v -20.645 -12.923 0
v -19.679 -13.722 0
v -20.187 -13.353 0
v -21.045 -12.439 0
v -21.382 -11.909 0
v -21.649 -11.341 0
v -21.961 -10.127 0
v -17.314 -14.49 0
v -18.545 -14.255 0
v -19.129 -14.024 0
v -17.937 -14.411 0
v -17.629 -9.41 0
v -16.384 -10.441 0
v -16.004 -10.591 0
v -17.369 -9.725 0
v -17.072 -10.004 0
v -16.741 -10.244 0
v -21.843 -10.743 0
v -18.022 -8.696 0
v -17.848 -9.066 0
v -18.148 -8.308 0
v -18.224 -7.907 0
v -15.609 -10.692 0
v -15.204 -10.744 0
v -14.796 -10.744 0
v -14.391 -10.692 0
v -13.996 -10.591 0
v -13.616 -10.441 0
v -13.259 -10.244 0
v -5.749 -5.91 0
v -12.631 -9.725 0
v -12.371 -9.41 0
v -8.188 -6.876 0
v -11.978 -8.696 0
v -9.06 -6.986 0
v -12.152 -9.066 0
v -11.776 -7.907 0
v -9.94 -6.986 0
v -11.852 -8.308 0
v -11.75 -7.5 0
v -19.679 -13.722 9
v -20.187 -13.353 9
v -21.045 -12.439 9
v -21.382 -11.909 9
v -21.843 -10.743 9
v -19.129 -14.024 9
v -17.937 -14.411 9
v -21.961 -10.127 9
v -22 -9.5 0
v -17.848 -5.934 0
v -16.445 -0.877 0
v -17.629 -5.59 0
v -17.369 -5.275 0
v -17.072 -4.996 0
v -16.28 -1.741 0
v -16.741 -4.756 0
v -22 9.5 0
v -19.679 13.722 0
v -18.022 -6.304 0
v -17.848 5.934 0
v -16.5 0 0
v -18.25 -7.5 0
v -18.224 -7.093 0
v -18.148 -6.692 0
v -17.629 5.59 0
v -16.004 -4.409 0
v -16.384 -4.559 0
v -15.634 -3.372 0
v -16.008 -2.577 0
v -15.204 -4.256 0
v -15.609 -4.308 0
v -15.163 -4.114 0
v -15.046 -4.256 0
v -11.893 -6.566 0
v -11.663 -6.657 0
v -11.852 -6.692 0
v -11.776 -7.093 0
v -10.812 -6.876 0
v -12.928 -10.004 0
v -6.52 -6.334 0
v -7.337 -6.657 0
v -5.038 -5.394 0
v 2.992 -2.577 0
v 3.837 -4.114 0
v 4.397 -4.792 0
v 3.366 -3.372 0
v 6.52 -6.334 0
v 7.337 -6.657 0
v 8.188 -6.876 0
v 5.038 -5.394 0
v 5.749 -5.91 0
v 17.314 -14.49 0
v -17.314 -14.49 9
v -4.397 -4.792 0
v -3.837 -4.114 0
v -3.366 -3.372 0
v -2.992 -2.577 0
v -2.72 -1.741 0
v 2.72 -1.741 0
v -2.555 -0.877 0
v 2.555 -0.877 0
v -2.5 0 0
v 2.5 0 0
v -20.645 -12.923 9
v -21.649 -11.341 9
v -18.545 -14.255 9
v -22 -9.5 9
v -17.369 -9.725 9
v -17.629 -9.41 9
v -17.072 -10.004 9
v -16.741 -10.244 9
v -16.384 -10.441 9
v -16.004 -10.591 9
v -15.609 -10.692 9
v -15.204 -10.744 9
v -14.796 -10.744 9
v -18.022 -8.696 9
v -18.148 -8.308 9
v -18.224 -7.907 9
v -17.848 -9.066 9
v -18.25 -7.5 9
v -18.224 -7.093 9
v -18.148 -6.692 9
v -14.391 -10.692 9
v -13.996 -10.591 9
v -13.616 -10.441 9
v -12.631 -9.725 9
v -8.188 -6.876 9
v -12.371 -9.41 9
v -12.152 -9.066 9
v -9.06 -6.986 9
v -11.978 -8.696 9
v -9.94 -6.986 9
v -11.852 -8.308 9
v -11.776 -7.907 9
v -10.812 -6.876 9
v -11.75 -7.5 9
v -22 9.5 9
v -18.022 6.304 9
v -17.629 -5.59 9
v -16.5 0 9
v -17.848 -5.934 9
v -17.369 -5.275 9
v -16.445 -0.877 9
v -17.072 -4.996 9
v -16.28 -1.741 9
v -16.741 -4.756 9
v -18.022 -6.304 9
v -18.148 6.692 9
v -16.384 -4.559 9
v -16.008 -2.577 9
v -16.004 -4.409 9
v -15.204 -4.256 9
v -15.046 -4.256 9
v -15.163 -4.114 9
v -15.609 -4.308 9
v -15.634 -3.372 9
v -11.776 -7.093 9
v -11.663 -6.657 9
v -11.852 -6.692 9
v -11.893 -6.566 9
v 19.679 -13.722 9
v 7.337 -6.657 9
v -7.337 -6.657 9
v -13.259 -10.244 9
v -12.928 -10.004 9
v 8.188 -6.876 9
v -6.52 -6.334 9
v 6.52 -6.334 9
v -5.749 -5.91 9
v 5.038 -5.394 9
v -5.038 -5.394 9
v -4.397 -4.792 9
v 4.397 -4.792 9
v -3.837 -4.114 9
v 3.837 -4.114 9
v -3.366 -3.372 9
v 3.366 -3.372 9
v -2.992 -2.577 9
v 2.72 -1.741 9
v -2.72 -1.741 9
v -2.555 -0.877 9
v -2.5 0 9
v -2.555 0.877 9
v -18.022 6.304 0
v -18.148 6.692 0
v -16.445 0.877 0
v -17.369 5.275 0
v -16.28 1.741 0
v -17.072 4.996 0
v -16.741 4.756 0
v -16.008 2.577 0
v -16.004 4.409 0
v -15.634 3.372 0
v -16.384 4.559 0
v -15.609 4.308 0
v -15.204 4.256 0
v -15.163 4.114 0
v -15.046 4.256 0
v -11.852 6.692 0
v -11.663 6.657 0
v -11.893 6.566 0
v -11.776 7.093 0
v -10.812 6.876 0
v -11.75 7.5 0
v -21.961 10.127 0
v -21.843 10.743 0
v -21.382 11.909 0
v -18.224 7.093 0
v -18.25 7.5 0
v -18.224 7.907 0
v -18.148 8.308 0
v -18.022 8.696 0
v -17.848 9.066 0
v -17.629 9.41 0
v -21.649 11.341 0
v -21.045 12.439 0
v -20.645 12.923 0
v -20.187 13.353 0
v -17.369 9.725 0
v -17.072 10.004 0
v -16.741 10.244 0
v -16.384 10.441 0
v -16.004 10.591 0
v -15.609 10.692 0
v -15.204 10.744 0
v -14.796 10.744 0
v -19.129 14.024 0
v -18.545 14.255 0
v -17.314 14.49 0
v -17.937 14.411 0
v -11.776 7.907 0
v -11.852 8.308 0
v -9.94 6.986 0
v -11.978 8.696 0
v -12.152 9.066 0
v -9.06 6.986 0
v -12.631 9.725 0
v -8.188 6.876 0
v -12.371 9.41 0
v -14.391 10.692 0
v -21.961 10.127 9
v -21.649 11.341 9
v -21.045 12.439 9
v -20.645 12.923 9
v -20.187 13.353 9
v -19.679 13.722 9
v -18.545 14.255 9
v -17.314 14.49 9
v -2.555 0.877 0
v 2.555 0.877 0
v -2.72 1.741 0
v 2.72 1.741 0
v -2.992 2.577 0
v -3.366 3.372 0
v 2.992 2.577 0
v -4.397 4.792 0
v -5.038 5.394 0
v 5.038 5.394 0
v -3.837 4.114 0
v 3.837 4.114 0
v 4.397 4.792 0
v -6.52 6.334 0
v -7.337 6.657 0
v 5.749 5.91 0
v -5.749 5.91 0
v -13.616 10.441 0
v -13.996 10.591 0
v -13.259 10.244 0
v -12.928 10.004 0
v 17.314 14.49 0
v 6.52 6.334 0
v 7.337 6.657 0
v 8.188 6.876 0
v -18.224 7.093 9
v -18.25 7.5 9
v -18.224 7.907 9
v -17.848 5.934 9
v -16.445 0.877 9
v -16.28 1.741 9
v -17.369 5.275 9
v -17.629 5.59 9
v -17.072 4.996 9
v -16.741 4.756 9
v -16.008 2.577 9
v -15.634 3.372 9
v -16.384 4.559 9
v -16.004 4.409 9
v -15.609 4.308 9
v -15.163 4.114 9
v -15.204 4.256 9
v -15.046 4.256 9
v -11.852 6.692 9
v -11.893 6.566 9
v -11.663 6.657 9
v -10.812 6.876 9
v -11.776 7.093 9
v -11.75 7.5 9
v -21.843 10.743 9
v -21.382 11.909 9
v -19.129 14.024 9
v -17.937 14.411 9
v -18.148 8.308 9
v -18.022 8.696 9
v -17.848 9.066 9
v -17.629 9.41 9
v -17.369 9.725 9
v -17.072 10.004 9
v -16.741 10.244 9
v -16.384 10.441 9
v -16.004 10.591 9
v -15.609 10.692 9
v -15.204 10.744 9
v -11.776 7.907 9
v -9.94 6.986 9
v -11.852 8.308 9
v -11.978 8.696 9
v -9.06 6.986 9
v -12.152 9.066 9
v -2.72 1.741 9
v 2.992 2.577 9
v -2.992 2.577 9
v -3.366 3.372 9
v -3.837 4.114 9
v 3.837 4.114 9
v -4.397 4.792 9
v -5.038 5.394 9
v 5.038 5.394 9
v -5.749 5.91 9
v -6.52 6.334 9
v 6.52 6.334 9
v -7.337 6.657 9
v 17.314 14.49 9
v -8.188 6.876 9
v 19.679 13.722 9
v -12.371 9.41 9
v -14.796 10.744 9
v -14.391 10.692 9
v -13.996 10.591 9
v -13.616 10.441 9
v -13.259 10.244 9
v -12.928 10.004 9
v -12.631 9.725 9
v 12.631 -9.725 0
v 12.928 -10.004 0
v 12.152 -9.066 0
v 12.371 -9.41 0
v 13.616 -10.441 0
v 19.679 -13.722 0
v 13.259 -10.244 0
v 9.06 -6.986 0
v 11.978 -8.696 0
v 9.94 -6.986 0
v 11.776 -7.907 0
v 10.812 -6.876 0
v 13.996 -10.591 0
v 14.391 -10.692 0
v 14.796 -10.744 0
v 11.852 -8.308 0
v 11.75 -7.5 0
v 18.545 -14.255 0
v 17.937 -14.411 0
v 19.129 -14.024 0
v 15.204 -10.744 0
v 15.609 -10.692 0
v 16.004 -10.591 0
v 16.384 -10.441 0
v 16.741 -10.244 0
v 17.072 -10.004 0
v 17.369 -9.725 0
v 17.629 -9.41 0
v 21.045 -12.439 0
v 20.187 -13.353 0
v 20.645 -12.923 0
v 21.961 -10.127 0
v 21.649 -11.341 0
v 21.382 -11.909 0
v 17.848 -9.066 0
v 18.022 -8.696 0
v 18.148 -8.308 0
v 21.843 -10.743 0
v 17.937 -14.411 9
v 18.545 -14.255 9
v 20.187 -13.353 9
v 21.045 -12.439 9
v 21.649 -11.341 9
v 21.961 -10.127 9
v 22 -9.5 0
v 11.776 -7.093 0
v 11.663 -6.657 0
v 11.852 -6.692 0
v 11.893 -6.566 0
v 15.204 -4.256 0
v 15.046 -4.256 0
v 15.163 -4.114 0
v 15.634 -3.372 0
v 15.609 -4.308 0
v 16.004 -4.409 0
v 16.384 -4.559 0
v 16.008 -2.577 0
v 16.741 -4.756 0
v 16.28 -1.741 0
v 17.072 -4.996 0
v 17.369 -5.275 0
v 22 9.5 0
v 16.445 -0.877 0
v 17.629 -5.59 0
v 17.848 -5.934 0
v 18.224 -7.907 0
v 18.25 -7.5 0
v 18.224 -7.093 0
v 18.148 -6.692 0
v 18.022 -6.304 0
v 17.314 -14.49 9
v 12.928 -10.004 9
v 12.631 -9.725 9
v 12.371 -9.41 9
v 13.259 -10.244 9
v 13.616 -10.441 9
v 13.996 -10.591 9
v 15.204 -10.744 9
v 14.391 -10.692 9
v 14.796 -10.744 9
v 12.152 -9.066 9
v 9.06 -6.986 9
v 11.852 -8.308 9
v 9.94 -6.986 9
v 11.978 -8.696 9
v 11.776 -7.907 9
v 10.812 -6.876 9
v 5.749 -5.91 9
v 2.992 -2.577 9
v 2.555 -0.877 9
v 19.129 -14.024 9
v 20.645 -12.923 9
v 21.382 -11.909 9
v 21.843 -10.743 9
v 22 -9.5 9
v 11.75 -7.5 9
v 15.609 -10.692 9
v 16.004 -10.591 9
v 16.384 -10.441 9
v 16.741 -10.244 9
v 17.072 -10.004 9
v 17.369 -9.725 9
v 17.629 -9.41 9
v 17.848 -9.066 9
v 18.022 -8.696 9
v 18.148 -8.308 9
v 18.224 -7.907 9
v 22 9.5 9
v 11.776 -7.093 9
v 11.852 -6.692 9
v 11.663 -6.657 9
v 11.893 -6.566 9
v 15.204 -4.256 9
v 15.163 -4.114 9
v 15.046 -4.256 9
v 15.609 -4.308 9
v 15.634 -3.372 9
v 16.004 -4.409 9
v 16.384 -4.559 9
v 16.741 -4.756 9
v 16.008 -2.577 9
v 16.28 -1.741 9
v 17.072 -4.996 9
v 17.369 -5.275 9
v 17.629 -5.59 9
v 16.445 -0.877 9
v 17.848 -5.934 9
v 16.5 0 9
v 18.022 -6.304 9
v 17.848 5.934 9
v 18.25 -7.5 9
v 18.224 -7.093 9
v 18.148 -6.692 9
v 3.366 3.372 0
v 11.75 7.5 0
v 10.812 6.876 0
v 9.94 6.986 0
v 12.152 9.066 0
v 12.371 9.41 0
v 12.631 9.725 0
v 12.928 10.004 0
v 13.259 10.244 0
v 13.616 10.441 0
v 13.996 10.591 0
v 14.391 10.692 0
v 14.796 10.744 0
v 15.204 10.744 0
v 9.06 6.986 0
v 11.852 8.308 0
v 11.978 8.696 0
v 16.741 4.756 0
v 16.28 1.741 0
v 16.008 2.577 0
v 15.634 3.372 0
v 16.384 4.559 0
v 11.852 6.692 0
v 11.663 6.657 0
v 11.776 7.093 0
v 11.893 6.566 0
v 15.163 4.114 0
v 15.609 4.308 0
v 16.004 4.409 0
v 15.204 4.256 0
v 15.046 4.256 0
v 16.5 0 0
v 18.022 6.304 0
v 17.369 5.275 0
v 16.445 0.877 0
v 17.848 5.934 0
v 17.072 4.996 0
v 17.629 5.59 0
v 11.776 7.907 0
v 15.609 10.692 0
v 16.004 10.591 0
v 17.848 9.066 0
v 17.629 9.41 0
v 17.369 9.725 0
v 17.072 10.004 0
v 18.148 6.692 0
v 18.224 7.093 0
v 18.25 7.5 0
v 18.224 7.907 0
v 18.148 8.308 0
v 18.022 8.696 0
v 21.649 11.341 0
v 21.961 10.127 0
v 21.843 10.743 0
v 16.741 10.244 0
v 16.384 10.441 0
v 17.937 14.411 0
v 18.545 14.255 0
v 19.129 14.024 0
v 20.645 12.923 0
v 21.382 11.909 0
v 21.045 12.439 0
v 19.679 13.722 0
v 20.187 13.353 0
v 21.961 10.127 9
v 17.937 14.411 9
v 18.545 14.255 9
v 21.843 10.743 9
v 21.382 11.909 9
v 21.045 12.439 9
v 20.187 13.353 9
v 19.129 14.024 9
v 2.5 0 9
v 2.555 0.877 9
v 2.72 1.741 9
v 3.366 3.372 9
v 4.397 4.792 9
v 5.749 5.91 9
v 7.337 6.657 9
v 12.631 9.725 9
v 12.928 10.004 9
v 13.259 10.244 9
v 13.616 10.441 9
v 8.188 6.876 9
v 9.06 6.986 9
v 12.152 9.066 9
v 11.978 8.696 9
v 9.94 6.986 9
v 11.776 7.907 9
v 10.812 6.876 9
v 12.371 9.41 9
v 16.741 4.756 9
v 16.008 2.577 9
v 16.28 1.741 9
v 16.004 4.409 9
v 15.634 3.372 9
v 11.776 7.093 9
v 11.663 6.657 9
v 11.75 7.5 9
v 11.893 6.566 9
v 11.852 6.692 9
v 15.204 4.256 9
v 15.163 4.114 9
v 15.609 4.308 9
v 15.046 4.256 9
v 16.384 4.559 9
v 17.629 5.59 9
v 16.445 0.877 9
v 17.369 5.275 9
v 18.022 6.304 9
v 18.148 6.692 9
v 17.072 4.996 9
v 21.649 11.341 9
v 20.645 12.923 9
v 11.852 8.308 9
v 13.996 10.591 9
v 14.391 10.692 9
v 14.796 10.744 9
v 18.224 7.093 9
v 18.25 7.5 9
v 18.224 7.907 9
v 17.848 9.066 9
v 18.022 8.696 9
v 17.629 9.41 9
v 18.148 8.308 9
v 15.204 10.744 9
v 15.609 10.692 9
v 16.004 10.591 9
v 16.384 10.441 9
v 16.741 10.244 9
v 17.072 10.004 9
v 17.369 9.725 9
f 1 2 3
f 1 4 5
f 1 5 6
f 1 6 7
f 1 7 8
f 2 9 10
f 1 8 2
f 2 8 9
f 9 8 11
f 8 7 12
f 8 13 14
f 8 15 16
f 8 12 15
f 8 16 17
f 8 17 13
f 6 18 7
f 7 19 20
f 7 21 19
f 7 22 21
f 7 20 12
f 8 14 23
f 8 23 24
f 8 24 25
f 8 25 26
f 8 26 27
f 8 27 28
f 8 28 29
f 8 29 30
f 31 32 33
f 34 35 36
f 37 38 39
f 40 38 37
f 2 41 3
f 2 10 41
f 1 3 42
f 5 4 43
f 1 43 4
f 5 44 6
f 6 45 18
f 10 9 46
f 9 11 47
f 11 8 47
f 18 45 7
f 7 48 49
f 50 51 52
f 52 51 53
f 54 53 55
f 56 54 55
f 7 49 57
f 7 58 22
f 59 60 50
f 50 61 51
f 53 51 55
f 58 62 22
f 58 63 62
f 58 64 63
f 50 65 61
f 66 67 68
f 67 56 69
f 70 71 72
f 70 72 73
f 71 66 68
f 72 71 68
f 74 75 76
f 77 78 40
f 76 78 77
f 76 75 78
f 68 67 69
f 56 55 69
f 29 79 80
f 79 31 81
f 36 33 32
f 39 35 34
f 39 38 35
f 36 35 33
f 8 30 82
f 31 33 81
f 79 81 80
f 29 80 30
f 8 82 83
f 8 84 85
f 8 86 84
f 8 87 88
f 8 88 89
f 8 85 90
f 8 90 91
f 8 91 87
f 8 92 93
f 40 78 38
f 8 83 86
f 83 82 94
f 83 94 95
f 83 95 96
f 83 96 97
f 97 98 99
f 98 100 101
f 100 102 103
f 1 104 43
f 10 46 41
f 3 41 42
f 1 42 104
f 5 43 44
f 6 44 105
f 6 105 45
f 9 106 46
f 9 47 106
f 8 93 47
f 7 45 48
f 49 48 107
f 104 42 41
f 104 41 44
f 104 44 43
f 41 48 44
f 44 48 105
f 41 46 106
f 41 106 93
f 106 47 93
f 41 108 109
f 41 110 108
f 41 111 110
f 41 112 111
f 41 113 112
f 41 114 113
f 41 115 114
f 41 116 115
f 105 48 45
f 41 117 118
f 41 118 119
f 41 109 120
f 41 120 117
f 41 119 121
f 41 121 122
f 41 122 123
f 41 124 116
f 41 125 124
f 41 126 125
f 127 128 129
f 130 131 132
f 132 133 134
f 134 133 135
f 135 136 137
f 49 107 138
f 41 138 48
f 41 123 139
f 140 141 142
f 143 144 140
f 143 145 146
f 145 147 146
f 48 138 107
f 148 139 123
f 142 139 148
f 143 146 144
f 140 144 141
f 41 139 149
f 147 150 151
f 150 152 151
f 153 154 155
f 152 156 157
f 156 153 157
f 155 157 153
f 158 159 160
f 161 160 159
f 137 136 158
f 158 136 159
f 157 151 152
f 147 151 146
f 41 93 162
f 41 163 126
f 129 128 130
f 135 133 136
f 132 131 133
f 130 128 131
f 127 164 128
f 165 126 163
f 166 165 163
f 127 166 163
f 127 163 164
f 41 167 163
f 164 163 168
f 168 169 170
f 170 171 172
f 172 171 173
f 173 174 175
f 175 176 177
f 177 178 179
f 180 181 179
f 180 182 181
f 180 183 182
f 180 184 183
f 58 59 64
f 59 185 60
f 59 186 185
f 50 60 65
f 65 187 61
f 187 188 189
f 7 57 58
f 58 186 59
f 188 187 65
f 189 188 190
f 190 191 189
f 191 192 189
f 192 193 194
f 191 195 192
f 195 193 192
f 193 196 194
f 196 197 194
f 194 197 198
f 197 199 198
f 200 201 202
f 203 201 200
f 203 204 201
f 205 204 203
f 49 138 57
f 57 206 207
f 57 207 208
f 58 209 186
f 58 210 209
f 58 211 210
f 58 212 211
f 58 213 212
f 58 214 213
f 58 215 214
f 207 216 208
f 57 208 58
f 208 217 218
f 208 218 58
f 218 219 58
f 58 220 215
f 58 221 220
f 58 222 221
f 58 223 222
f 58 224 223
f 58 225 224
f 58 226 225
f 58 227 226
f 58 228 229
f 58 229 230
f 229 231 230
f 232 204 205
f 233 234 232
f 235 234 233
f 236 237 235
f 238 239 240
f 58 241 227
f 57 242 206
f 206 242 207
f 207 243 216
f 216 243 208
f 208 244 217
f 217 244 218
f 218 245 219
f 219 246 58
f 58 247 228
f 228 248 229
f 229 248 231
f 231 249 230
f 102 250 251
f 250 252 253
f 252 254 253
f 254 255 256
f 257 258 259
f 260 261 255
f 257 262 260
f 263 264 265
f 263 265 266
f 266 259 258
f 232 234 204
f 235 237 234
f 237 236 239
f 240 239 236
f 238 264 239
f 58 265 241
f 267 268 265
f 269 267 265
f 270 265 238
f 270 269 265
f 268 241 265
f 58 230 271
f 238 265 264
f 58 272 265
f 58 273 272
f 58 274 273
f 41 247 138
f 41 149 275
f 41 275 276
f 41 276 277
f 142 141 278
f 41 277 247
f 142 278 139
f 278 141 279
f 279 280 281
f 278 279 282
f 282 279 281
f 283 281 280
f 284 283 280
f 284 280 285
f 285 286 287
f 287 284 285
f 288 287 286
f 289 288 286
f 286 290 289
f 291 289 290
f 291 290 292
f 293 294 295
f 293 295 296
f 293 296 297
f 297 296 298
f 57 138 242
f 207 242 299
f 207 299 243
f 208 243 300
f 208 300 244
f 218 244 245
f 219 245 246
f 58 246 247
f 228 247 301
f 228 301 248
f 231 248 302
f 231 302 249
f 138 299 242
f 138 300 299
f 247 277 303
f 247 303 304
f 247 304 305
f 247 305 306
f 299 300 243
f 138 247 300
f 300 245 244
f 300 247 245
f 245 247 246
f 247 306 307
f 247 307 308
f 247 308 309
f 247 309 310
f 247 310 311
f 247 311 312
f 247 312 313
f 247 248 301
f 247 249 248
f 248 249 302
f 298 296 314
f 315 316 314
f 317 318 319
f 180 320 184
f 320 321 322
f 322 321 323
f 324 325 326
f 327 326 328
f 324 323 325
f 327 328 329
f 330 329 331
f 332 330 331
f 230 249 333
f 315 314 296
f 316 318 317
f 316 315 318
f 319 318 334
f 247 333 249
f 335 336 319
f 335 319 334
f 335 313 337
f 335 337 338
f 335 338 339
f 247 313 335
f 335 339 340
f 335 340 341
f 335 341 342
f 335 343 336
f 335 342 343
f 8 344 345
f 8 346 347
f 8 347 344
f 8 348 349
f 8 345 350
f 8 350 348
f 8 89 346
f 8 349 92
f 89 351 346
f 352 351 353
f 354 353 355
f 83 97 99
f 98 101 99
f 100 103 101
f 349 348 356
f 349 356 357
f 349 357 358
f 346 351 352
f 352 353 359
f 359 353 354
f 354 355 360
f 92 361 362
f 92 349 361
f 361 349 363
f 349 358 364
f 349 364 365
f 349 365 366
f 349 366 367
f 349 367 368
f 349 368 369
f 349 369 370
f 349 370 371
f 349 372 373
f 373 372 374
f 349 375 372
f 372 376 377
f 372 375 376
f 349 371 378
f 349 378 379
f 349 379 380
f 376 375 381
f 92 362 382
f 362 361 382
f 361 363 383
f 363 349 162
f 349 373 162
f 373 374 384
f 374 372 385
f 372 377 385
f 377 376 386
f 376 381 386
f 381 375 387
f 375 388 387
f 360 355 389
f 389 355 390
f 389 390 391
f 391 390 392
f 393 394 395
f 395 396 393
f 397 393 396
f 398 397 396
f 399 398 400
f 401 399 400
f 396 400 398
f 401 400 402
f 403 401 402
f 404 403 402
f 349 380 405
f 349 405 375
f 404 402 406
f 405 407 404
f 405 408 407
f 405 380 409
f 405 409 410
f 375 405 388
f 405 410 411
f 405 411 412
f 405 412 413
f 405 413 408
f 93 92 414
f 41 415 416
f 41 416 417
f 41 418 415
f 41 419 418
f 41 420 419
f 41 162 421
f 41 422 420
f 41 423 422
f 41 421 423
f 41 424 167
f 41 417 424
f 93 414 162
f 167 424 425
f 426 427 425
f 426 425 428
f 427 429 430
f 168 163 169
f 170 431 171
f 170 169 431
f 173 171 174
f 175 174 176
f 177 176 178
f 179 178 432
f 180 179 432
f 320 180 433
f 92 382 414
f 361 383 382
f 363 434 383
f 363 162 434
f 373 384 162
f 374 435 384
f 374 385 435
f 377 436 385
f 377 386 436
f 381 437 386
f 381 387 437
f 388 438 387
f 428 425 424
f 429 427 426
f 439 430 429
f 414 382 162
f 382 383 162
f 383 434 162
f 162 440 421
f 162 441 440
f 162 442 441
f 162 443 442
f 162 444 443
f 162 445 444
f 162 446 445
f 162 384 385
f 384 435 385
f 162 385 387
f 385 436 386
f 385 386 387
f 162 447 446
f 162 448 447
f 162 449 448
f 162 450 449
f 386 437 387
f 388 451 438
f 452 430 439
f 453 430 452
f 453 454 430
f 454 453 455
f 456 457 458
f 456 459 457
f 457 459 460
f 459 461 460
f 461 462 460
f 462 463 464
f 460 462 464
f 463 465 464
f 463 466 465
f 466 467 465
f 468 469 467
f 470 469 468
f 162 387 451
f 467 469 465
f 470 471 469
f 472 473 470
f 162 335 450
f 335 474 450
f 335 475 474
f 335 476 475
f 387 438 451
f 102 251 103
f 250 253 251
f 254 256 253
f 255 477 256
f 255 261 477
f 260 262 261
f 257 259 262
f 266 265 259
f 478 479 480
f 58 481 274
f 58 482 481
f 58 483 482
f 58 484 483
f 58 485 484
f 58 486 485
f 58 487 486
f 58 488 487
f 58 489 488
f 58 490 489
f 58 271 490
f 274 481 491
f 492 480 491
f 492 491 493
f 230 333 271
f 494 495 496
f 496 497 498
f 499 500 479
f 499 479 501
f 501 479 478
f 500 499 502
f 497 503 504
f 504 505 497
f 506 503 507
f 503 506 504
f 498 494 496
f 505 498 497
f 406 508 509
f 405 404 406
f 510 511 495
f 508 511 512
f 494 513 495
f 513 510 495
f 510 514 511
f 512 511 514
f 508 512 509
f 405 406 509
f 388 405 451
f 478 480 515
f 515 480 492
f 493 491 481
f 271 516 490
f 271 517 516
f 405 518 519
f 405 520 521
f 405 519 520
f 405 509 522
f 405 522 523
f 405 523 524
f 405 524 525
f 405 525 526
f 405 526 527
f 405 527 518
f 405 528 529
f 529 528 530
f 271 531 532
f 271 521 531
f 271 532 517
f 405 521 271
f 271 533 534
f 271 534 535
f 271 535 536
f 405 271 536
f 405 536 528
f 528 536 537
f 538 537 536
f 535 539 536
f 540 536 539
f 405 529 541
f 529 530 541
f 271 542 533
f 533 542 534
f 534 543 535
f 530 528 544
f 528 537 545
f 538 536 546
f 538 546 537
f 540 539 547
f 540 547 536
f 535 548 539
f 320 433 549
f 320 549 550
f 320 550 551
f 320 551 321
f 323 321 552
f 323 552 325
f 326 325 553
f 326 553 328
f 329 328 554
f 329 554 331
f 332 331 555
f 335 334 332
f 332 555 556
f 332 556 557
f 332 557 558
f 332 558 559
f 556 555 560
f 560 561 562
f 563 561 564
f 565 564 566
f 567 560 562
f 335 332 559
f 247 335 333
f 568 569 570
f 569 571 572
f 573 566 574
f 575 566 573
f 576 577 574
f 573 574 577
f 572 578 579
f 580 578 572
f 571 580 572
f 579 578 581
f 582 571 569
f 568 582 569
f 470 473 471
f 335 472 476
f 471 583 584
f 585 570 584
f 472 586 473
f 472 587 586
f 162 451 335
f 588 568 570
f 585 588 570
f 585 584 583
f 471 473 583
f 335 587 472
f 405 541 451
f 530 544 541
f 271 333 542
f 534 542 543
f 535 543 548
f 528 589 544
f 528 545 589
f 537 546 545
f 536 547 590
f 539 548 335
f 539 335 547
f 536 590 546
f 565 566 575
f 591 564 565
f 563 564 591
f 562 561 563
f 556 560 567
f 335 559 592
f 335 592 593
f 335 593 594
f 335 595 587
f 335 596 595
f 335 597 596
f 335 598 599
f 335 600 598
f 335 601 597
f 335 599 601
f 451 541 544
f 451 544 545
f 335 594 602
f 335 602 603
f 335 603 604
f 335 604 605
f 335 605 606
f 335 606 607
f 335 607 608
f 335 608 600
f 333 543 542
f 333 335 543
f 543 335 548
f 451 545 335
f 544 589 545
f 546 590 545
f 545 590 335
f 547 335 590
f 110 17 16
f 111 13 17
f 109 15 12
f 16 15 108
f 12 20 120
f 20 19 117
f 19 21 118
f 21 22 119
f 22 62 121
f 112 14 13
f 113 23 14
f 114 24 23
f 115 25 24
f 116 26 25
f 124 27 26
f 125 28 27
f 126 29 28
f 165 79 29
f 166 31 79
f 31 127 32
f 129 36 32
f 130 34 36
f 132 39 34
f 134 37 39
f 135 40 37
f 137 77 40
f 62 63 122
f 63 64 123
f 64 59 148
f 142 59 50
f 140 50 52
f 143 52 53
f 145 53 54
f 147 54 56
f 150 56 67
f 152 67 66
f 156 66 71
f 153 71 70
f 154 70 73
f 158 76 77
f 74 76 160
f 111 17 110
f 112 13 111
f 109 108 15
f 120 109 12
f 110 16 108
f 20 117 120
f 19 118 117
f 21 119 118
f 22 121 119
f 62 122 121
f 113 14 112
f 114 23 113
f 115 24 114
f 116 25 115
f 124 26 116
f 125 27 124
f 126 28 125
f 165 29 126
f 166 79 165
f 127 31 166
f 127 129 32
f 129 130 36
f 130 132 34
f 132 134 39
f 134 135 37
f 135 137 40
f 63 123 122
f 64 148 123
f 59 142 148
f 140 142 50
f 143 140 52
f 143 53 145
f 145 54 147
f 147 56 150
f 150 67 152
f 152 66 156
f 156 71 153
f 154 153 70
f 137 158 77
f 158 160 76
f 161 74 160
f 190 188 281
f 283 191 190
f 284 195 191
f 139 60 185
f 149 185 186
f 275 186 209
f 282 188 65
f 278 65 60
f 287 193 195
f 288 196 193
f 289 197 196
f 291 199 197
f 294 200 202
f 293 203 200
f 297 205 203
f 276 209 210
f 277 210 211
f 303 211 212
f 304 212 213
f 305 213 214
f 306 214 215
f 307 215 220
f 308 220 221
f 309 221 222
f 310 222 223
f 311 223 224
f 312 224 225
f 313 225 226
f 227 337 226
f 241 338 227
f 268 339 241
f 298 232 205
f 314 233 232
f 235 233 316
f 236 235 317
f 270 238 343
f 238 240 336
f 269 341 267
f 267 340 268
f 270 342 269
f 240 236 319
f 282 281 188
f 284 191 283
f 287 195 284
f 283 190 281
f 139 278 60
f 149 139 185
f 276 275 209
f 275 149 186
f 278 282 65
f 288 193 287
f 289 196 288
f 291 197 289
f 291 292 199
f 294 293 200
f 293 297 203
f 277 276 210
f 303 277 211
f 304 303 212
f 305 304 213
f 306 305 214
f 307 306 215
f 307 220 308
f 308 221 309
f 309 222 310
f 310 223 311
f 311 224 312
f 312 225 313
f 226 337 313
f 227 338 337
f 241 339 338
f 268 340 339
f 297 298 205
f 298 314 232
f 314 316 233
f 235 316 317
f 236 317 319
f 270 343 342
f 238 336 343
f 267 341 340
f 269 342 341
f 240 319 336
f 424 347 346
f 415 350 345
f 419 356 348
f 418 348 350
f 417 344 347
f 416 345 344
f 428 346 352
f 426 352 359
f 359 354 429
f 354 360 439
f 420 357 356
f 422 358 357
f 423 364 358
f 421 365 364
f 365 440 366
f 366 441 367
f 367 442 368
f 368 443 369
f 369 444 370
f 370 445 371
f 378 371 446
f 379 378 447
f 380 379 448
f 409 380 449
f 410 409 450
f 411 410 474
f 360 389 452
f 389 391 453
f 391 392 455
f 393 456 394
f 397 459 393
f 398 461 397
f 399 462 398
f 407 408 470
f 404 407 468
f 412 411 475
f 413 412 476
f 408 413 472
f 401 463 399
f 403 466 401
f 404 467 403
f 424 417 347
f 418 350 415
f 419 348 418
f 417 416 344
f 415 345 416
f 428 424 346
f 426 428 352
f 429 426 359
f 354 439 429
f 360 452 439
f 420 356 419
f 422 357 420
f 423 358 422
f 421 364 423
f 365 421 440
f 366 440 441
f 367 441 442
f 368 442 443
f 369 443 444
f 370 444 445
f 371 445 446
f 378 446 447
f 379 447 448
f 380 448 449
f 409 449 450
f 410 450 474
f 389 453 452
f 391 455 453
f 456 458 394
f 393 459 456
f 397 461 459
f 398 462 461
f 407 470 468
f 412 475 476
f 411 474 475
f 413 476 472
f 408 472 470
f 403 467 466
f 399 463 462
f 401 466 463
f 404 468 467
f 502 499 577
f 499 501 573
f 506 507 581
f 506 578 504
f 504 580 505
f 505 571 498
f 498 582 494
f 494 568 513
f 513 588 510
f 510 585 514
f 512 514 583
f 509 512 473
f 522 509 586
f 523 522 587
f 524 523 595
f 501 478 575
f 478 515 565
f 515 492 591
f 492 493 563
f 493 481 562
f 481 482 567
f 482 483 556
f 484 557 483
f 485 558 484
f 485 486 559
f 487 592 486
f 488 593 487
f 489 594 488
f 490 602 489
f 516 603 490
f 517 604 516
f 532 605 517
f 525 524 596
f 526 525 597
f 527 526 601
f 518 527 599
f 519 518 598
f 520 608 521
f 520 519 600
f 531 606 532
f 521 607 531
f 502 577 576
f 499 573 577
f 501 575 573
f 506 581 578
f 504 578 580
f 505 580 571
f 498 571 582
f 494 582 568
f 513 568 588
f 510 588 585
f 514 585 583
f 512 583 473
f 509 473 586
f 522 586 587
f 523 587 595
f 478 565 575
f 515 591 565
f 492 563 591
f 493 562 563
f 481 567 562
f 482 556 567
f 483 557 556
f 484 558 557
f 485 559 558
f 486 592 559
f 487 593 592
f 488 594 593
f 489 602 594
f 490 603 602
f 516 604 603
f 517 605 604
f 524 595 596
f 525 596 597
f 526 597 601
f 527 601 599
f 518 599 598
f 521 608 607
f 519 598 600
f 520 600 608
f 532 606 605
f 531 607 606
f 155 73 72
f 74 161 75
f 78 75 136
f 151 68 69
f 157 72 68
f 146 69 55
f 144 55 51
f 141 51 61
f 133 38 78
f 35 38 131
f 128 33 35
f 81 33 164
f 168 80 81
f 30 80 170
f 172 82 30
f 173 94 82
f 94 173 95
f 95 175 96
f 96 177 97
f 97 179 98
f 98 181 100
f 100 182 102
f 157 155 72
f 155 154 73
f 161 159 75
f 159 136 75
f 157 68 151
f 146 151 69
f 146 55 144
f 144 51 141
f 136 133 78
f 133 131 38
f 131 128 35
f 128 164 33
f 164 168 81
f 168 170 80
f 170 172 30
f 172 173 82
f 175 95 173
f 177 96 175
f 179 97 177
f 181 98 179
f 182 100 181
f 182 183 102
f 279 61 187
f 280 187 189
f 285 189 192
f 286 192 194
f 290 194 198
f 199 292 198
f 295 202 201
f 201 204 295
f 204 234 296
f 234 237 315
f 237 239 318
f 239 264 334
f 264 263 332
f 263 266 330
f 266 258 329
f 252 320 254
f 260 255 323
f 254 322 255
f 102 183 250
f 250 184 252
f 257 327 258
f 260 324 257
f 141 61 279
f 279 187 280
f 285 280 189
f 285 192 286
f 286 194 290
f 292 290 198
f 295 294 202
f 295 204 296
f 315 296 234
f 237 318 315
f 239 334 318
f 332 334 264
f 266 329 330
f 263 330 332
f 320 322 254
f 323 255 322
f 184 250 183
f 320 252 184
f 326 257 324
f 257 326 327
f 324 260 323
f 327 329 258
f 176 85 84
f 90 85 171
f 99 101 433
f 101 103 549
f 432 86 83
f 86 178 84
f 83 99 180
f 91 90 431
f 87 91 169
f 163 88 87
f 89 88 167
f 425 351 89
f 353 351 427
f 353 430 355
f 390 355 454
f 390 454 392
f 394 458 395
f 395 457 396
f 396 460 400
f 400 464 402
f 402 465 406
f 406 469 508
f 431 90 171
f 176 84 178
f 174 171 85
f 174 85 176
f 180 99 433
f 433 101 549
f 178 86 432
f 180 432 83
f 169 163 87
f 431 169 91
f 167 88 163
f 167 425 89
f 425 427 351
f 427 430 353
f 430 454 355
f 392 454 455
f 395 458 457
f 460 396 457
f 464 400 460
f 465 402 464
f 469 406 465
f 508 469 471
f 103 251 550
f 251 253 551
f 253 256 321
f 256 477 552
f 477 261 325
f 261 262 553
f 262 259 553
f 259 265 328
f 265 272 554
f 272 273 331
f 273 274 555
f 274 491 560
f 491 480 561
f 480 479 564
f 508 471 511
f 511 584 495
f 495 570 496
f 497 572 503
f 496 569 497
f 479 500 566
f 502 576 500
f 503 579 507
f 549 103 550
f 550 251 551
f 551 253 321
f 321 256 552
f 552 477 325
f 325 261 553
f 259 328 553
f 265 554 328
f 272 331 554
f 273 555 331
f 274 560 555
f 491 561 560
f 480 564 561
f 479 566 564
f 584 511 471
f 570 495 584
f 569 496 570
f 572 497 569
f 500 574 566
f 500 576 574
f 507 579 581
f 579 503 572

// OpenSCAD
$fn = 50;

difference() {
	union() {
		hull() {
			translate(v = [-17.0, 9.5, 0]) {
				cylinder(h = 9, r = 5);
			}
			translate(v = [17.0, 9.5, 0]) {
				cylinder(h = 9, r = 5);
			}
			translate(v = [-17.0, -9.5, 0]) {
				cylinder(h = 9, r = 5);
			}
			translate(v = [17.0, -9.5, 0]) {
				cylinder(h = 9, r = 5);
			}
		}
	}
	union() {
		translate(v = [-15.0, -7.5, -100.0]) {
			cylinder(h = 200, r = 3.25);
		}
		translate(v = [-15.0, 7.5, -100.0]) {
			cylinder(h = 200, r = 3.25);
		}
		translate(v = [15.0, -7.5, -100.0]) {
			cylinder(h = 200, r = 3.25);
		}
		translate(v = [15.0, 7.5, -100.0]) {
			cylinder(h = 200, r = 3.25);
		}
		translate(v = [-15.0, -7.5, -100.0]) {
			cylinder(h = 200, r = 1.8);
		}
		translate(v = [-15.0, 7.5, -100.0]) {
			cylinder(h = 200, r = 1.8);
		}
		translate(v = [15.0, -7.5, -100.0]) {
			cylinder(h = 200, r = 1.8);
		}
		translate(v = [15.0, 7.5, -100.0]) {
			cylinder(h = 200, r = 1.8);
		}
		translate(v = [-9.5, 0, 0.0]) {
			cylinder(h = 9, r = 7.0);
		}
		translate(v = [9.5, 0, 0.0]) {
			cylinder(h = 9, r = 7.0);
		}
	}
}
